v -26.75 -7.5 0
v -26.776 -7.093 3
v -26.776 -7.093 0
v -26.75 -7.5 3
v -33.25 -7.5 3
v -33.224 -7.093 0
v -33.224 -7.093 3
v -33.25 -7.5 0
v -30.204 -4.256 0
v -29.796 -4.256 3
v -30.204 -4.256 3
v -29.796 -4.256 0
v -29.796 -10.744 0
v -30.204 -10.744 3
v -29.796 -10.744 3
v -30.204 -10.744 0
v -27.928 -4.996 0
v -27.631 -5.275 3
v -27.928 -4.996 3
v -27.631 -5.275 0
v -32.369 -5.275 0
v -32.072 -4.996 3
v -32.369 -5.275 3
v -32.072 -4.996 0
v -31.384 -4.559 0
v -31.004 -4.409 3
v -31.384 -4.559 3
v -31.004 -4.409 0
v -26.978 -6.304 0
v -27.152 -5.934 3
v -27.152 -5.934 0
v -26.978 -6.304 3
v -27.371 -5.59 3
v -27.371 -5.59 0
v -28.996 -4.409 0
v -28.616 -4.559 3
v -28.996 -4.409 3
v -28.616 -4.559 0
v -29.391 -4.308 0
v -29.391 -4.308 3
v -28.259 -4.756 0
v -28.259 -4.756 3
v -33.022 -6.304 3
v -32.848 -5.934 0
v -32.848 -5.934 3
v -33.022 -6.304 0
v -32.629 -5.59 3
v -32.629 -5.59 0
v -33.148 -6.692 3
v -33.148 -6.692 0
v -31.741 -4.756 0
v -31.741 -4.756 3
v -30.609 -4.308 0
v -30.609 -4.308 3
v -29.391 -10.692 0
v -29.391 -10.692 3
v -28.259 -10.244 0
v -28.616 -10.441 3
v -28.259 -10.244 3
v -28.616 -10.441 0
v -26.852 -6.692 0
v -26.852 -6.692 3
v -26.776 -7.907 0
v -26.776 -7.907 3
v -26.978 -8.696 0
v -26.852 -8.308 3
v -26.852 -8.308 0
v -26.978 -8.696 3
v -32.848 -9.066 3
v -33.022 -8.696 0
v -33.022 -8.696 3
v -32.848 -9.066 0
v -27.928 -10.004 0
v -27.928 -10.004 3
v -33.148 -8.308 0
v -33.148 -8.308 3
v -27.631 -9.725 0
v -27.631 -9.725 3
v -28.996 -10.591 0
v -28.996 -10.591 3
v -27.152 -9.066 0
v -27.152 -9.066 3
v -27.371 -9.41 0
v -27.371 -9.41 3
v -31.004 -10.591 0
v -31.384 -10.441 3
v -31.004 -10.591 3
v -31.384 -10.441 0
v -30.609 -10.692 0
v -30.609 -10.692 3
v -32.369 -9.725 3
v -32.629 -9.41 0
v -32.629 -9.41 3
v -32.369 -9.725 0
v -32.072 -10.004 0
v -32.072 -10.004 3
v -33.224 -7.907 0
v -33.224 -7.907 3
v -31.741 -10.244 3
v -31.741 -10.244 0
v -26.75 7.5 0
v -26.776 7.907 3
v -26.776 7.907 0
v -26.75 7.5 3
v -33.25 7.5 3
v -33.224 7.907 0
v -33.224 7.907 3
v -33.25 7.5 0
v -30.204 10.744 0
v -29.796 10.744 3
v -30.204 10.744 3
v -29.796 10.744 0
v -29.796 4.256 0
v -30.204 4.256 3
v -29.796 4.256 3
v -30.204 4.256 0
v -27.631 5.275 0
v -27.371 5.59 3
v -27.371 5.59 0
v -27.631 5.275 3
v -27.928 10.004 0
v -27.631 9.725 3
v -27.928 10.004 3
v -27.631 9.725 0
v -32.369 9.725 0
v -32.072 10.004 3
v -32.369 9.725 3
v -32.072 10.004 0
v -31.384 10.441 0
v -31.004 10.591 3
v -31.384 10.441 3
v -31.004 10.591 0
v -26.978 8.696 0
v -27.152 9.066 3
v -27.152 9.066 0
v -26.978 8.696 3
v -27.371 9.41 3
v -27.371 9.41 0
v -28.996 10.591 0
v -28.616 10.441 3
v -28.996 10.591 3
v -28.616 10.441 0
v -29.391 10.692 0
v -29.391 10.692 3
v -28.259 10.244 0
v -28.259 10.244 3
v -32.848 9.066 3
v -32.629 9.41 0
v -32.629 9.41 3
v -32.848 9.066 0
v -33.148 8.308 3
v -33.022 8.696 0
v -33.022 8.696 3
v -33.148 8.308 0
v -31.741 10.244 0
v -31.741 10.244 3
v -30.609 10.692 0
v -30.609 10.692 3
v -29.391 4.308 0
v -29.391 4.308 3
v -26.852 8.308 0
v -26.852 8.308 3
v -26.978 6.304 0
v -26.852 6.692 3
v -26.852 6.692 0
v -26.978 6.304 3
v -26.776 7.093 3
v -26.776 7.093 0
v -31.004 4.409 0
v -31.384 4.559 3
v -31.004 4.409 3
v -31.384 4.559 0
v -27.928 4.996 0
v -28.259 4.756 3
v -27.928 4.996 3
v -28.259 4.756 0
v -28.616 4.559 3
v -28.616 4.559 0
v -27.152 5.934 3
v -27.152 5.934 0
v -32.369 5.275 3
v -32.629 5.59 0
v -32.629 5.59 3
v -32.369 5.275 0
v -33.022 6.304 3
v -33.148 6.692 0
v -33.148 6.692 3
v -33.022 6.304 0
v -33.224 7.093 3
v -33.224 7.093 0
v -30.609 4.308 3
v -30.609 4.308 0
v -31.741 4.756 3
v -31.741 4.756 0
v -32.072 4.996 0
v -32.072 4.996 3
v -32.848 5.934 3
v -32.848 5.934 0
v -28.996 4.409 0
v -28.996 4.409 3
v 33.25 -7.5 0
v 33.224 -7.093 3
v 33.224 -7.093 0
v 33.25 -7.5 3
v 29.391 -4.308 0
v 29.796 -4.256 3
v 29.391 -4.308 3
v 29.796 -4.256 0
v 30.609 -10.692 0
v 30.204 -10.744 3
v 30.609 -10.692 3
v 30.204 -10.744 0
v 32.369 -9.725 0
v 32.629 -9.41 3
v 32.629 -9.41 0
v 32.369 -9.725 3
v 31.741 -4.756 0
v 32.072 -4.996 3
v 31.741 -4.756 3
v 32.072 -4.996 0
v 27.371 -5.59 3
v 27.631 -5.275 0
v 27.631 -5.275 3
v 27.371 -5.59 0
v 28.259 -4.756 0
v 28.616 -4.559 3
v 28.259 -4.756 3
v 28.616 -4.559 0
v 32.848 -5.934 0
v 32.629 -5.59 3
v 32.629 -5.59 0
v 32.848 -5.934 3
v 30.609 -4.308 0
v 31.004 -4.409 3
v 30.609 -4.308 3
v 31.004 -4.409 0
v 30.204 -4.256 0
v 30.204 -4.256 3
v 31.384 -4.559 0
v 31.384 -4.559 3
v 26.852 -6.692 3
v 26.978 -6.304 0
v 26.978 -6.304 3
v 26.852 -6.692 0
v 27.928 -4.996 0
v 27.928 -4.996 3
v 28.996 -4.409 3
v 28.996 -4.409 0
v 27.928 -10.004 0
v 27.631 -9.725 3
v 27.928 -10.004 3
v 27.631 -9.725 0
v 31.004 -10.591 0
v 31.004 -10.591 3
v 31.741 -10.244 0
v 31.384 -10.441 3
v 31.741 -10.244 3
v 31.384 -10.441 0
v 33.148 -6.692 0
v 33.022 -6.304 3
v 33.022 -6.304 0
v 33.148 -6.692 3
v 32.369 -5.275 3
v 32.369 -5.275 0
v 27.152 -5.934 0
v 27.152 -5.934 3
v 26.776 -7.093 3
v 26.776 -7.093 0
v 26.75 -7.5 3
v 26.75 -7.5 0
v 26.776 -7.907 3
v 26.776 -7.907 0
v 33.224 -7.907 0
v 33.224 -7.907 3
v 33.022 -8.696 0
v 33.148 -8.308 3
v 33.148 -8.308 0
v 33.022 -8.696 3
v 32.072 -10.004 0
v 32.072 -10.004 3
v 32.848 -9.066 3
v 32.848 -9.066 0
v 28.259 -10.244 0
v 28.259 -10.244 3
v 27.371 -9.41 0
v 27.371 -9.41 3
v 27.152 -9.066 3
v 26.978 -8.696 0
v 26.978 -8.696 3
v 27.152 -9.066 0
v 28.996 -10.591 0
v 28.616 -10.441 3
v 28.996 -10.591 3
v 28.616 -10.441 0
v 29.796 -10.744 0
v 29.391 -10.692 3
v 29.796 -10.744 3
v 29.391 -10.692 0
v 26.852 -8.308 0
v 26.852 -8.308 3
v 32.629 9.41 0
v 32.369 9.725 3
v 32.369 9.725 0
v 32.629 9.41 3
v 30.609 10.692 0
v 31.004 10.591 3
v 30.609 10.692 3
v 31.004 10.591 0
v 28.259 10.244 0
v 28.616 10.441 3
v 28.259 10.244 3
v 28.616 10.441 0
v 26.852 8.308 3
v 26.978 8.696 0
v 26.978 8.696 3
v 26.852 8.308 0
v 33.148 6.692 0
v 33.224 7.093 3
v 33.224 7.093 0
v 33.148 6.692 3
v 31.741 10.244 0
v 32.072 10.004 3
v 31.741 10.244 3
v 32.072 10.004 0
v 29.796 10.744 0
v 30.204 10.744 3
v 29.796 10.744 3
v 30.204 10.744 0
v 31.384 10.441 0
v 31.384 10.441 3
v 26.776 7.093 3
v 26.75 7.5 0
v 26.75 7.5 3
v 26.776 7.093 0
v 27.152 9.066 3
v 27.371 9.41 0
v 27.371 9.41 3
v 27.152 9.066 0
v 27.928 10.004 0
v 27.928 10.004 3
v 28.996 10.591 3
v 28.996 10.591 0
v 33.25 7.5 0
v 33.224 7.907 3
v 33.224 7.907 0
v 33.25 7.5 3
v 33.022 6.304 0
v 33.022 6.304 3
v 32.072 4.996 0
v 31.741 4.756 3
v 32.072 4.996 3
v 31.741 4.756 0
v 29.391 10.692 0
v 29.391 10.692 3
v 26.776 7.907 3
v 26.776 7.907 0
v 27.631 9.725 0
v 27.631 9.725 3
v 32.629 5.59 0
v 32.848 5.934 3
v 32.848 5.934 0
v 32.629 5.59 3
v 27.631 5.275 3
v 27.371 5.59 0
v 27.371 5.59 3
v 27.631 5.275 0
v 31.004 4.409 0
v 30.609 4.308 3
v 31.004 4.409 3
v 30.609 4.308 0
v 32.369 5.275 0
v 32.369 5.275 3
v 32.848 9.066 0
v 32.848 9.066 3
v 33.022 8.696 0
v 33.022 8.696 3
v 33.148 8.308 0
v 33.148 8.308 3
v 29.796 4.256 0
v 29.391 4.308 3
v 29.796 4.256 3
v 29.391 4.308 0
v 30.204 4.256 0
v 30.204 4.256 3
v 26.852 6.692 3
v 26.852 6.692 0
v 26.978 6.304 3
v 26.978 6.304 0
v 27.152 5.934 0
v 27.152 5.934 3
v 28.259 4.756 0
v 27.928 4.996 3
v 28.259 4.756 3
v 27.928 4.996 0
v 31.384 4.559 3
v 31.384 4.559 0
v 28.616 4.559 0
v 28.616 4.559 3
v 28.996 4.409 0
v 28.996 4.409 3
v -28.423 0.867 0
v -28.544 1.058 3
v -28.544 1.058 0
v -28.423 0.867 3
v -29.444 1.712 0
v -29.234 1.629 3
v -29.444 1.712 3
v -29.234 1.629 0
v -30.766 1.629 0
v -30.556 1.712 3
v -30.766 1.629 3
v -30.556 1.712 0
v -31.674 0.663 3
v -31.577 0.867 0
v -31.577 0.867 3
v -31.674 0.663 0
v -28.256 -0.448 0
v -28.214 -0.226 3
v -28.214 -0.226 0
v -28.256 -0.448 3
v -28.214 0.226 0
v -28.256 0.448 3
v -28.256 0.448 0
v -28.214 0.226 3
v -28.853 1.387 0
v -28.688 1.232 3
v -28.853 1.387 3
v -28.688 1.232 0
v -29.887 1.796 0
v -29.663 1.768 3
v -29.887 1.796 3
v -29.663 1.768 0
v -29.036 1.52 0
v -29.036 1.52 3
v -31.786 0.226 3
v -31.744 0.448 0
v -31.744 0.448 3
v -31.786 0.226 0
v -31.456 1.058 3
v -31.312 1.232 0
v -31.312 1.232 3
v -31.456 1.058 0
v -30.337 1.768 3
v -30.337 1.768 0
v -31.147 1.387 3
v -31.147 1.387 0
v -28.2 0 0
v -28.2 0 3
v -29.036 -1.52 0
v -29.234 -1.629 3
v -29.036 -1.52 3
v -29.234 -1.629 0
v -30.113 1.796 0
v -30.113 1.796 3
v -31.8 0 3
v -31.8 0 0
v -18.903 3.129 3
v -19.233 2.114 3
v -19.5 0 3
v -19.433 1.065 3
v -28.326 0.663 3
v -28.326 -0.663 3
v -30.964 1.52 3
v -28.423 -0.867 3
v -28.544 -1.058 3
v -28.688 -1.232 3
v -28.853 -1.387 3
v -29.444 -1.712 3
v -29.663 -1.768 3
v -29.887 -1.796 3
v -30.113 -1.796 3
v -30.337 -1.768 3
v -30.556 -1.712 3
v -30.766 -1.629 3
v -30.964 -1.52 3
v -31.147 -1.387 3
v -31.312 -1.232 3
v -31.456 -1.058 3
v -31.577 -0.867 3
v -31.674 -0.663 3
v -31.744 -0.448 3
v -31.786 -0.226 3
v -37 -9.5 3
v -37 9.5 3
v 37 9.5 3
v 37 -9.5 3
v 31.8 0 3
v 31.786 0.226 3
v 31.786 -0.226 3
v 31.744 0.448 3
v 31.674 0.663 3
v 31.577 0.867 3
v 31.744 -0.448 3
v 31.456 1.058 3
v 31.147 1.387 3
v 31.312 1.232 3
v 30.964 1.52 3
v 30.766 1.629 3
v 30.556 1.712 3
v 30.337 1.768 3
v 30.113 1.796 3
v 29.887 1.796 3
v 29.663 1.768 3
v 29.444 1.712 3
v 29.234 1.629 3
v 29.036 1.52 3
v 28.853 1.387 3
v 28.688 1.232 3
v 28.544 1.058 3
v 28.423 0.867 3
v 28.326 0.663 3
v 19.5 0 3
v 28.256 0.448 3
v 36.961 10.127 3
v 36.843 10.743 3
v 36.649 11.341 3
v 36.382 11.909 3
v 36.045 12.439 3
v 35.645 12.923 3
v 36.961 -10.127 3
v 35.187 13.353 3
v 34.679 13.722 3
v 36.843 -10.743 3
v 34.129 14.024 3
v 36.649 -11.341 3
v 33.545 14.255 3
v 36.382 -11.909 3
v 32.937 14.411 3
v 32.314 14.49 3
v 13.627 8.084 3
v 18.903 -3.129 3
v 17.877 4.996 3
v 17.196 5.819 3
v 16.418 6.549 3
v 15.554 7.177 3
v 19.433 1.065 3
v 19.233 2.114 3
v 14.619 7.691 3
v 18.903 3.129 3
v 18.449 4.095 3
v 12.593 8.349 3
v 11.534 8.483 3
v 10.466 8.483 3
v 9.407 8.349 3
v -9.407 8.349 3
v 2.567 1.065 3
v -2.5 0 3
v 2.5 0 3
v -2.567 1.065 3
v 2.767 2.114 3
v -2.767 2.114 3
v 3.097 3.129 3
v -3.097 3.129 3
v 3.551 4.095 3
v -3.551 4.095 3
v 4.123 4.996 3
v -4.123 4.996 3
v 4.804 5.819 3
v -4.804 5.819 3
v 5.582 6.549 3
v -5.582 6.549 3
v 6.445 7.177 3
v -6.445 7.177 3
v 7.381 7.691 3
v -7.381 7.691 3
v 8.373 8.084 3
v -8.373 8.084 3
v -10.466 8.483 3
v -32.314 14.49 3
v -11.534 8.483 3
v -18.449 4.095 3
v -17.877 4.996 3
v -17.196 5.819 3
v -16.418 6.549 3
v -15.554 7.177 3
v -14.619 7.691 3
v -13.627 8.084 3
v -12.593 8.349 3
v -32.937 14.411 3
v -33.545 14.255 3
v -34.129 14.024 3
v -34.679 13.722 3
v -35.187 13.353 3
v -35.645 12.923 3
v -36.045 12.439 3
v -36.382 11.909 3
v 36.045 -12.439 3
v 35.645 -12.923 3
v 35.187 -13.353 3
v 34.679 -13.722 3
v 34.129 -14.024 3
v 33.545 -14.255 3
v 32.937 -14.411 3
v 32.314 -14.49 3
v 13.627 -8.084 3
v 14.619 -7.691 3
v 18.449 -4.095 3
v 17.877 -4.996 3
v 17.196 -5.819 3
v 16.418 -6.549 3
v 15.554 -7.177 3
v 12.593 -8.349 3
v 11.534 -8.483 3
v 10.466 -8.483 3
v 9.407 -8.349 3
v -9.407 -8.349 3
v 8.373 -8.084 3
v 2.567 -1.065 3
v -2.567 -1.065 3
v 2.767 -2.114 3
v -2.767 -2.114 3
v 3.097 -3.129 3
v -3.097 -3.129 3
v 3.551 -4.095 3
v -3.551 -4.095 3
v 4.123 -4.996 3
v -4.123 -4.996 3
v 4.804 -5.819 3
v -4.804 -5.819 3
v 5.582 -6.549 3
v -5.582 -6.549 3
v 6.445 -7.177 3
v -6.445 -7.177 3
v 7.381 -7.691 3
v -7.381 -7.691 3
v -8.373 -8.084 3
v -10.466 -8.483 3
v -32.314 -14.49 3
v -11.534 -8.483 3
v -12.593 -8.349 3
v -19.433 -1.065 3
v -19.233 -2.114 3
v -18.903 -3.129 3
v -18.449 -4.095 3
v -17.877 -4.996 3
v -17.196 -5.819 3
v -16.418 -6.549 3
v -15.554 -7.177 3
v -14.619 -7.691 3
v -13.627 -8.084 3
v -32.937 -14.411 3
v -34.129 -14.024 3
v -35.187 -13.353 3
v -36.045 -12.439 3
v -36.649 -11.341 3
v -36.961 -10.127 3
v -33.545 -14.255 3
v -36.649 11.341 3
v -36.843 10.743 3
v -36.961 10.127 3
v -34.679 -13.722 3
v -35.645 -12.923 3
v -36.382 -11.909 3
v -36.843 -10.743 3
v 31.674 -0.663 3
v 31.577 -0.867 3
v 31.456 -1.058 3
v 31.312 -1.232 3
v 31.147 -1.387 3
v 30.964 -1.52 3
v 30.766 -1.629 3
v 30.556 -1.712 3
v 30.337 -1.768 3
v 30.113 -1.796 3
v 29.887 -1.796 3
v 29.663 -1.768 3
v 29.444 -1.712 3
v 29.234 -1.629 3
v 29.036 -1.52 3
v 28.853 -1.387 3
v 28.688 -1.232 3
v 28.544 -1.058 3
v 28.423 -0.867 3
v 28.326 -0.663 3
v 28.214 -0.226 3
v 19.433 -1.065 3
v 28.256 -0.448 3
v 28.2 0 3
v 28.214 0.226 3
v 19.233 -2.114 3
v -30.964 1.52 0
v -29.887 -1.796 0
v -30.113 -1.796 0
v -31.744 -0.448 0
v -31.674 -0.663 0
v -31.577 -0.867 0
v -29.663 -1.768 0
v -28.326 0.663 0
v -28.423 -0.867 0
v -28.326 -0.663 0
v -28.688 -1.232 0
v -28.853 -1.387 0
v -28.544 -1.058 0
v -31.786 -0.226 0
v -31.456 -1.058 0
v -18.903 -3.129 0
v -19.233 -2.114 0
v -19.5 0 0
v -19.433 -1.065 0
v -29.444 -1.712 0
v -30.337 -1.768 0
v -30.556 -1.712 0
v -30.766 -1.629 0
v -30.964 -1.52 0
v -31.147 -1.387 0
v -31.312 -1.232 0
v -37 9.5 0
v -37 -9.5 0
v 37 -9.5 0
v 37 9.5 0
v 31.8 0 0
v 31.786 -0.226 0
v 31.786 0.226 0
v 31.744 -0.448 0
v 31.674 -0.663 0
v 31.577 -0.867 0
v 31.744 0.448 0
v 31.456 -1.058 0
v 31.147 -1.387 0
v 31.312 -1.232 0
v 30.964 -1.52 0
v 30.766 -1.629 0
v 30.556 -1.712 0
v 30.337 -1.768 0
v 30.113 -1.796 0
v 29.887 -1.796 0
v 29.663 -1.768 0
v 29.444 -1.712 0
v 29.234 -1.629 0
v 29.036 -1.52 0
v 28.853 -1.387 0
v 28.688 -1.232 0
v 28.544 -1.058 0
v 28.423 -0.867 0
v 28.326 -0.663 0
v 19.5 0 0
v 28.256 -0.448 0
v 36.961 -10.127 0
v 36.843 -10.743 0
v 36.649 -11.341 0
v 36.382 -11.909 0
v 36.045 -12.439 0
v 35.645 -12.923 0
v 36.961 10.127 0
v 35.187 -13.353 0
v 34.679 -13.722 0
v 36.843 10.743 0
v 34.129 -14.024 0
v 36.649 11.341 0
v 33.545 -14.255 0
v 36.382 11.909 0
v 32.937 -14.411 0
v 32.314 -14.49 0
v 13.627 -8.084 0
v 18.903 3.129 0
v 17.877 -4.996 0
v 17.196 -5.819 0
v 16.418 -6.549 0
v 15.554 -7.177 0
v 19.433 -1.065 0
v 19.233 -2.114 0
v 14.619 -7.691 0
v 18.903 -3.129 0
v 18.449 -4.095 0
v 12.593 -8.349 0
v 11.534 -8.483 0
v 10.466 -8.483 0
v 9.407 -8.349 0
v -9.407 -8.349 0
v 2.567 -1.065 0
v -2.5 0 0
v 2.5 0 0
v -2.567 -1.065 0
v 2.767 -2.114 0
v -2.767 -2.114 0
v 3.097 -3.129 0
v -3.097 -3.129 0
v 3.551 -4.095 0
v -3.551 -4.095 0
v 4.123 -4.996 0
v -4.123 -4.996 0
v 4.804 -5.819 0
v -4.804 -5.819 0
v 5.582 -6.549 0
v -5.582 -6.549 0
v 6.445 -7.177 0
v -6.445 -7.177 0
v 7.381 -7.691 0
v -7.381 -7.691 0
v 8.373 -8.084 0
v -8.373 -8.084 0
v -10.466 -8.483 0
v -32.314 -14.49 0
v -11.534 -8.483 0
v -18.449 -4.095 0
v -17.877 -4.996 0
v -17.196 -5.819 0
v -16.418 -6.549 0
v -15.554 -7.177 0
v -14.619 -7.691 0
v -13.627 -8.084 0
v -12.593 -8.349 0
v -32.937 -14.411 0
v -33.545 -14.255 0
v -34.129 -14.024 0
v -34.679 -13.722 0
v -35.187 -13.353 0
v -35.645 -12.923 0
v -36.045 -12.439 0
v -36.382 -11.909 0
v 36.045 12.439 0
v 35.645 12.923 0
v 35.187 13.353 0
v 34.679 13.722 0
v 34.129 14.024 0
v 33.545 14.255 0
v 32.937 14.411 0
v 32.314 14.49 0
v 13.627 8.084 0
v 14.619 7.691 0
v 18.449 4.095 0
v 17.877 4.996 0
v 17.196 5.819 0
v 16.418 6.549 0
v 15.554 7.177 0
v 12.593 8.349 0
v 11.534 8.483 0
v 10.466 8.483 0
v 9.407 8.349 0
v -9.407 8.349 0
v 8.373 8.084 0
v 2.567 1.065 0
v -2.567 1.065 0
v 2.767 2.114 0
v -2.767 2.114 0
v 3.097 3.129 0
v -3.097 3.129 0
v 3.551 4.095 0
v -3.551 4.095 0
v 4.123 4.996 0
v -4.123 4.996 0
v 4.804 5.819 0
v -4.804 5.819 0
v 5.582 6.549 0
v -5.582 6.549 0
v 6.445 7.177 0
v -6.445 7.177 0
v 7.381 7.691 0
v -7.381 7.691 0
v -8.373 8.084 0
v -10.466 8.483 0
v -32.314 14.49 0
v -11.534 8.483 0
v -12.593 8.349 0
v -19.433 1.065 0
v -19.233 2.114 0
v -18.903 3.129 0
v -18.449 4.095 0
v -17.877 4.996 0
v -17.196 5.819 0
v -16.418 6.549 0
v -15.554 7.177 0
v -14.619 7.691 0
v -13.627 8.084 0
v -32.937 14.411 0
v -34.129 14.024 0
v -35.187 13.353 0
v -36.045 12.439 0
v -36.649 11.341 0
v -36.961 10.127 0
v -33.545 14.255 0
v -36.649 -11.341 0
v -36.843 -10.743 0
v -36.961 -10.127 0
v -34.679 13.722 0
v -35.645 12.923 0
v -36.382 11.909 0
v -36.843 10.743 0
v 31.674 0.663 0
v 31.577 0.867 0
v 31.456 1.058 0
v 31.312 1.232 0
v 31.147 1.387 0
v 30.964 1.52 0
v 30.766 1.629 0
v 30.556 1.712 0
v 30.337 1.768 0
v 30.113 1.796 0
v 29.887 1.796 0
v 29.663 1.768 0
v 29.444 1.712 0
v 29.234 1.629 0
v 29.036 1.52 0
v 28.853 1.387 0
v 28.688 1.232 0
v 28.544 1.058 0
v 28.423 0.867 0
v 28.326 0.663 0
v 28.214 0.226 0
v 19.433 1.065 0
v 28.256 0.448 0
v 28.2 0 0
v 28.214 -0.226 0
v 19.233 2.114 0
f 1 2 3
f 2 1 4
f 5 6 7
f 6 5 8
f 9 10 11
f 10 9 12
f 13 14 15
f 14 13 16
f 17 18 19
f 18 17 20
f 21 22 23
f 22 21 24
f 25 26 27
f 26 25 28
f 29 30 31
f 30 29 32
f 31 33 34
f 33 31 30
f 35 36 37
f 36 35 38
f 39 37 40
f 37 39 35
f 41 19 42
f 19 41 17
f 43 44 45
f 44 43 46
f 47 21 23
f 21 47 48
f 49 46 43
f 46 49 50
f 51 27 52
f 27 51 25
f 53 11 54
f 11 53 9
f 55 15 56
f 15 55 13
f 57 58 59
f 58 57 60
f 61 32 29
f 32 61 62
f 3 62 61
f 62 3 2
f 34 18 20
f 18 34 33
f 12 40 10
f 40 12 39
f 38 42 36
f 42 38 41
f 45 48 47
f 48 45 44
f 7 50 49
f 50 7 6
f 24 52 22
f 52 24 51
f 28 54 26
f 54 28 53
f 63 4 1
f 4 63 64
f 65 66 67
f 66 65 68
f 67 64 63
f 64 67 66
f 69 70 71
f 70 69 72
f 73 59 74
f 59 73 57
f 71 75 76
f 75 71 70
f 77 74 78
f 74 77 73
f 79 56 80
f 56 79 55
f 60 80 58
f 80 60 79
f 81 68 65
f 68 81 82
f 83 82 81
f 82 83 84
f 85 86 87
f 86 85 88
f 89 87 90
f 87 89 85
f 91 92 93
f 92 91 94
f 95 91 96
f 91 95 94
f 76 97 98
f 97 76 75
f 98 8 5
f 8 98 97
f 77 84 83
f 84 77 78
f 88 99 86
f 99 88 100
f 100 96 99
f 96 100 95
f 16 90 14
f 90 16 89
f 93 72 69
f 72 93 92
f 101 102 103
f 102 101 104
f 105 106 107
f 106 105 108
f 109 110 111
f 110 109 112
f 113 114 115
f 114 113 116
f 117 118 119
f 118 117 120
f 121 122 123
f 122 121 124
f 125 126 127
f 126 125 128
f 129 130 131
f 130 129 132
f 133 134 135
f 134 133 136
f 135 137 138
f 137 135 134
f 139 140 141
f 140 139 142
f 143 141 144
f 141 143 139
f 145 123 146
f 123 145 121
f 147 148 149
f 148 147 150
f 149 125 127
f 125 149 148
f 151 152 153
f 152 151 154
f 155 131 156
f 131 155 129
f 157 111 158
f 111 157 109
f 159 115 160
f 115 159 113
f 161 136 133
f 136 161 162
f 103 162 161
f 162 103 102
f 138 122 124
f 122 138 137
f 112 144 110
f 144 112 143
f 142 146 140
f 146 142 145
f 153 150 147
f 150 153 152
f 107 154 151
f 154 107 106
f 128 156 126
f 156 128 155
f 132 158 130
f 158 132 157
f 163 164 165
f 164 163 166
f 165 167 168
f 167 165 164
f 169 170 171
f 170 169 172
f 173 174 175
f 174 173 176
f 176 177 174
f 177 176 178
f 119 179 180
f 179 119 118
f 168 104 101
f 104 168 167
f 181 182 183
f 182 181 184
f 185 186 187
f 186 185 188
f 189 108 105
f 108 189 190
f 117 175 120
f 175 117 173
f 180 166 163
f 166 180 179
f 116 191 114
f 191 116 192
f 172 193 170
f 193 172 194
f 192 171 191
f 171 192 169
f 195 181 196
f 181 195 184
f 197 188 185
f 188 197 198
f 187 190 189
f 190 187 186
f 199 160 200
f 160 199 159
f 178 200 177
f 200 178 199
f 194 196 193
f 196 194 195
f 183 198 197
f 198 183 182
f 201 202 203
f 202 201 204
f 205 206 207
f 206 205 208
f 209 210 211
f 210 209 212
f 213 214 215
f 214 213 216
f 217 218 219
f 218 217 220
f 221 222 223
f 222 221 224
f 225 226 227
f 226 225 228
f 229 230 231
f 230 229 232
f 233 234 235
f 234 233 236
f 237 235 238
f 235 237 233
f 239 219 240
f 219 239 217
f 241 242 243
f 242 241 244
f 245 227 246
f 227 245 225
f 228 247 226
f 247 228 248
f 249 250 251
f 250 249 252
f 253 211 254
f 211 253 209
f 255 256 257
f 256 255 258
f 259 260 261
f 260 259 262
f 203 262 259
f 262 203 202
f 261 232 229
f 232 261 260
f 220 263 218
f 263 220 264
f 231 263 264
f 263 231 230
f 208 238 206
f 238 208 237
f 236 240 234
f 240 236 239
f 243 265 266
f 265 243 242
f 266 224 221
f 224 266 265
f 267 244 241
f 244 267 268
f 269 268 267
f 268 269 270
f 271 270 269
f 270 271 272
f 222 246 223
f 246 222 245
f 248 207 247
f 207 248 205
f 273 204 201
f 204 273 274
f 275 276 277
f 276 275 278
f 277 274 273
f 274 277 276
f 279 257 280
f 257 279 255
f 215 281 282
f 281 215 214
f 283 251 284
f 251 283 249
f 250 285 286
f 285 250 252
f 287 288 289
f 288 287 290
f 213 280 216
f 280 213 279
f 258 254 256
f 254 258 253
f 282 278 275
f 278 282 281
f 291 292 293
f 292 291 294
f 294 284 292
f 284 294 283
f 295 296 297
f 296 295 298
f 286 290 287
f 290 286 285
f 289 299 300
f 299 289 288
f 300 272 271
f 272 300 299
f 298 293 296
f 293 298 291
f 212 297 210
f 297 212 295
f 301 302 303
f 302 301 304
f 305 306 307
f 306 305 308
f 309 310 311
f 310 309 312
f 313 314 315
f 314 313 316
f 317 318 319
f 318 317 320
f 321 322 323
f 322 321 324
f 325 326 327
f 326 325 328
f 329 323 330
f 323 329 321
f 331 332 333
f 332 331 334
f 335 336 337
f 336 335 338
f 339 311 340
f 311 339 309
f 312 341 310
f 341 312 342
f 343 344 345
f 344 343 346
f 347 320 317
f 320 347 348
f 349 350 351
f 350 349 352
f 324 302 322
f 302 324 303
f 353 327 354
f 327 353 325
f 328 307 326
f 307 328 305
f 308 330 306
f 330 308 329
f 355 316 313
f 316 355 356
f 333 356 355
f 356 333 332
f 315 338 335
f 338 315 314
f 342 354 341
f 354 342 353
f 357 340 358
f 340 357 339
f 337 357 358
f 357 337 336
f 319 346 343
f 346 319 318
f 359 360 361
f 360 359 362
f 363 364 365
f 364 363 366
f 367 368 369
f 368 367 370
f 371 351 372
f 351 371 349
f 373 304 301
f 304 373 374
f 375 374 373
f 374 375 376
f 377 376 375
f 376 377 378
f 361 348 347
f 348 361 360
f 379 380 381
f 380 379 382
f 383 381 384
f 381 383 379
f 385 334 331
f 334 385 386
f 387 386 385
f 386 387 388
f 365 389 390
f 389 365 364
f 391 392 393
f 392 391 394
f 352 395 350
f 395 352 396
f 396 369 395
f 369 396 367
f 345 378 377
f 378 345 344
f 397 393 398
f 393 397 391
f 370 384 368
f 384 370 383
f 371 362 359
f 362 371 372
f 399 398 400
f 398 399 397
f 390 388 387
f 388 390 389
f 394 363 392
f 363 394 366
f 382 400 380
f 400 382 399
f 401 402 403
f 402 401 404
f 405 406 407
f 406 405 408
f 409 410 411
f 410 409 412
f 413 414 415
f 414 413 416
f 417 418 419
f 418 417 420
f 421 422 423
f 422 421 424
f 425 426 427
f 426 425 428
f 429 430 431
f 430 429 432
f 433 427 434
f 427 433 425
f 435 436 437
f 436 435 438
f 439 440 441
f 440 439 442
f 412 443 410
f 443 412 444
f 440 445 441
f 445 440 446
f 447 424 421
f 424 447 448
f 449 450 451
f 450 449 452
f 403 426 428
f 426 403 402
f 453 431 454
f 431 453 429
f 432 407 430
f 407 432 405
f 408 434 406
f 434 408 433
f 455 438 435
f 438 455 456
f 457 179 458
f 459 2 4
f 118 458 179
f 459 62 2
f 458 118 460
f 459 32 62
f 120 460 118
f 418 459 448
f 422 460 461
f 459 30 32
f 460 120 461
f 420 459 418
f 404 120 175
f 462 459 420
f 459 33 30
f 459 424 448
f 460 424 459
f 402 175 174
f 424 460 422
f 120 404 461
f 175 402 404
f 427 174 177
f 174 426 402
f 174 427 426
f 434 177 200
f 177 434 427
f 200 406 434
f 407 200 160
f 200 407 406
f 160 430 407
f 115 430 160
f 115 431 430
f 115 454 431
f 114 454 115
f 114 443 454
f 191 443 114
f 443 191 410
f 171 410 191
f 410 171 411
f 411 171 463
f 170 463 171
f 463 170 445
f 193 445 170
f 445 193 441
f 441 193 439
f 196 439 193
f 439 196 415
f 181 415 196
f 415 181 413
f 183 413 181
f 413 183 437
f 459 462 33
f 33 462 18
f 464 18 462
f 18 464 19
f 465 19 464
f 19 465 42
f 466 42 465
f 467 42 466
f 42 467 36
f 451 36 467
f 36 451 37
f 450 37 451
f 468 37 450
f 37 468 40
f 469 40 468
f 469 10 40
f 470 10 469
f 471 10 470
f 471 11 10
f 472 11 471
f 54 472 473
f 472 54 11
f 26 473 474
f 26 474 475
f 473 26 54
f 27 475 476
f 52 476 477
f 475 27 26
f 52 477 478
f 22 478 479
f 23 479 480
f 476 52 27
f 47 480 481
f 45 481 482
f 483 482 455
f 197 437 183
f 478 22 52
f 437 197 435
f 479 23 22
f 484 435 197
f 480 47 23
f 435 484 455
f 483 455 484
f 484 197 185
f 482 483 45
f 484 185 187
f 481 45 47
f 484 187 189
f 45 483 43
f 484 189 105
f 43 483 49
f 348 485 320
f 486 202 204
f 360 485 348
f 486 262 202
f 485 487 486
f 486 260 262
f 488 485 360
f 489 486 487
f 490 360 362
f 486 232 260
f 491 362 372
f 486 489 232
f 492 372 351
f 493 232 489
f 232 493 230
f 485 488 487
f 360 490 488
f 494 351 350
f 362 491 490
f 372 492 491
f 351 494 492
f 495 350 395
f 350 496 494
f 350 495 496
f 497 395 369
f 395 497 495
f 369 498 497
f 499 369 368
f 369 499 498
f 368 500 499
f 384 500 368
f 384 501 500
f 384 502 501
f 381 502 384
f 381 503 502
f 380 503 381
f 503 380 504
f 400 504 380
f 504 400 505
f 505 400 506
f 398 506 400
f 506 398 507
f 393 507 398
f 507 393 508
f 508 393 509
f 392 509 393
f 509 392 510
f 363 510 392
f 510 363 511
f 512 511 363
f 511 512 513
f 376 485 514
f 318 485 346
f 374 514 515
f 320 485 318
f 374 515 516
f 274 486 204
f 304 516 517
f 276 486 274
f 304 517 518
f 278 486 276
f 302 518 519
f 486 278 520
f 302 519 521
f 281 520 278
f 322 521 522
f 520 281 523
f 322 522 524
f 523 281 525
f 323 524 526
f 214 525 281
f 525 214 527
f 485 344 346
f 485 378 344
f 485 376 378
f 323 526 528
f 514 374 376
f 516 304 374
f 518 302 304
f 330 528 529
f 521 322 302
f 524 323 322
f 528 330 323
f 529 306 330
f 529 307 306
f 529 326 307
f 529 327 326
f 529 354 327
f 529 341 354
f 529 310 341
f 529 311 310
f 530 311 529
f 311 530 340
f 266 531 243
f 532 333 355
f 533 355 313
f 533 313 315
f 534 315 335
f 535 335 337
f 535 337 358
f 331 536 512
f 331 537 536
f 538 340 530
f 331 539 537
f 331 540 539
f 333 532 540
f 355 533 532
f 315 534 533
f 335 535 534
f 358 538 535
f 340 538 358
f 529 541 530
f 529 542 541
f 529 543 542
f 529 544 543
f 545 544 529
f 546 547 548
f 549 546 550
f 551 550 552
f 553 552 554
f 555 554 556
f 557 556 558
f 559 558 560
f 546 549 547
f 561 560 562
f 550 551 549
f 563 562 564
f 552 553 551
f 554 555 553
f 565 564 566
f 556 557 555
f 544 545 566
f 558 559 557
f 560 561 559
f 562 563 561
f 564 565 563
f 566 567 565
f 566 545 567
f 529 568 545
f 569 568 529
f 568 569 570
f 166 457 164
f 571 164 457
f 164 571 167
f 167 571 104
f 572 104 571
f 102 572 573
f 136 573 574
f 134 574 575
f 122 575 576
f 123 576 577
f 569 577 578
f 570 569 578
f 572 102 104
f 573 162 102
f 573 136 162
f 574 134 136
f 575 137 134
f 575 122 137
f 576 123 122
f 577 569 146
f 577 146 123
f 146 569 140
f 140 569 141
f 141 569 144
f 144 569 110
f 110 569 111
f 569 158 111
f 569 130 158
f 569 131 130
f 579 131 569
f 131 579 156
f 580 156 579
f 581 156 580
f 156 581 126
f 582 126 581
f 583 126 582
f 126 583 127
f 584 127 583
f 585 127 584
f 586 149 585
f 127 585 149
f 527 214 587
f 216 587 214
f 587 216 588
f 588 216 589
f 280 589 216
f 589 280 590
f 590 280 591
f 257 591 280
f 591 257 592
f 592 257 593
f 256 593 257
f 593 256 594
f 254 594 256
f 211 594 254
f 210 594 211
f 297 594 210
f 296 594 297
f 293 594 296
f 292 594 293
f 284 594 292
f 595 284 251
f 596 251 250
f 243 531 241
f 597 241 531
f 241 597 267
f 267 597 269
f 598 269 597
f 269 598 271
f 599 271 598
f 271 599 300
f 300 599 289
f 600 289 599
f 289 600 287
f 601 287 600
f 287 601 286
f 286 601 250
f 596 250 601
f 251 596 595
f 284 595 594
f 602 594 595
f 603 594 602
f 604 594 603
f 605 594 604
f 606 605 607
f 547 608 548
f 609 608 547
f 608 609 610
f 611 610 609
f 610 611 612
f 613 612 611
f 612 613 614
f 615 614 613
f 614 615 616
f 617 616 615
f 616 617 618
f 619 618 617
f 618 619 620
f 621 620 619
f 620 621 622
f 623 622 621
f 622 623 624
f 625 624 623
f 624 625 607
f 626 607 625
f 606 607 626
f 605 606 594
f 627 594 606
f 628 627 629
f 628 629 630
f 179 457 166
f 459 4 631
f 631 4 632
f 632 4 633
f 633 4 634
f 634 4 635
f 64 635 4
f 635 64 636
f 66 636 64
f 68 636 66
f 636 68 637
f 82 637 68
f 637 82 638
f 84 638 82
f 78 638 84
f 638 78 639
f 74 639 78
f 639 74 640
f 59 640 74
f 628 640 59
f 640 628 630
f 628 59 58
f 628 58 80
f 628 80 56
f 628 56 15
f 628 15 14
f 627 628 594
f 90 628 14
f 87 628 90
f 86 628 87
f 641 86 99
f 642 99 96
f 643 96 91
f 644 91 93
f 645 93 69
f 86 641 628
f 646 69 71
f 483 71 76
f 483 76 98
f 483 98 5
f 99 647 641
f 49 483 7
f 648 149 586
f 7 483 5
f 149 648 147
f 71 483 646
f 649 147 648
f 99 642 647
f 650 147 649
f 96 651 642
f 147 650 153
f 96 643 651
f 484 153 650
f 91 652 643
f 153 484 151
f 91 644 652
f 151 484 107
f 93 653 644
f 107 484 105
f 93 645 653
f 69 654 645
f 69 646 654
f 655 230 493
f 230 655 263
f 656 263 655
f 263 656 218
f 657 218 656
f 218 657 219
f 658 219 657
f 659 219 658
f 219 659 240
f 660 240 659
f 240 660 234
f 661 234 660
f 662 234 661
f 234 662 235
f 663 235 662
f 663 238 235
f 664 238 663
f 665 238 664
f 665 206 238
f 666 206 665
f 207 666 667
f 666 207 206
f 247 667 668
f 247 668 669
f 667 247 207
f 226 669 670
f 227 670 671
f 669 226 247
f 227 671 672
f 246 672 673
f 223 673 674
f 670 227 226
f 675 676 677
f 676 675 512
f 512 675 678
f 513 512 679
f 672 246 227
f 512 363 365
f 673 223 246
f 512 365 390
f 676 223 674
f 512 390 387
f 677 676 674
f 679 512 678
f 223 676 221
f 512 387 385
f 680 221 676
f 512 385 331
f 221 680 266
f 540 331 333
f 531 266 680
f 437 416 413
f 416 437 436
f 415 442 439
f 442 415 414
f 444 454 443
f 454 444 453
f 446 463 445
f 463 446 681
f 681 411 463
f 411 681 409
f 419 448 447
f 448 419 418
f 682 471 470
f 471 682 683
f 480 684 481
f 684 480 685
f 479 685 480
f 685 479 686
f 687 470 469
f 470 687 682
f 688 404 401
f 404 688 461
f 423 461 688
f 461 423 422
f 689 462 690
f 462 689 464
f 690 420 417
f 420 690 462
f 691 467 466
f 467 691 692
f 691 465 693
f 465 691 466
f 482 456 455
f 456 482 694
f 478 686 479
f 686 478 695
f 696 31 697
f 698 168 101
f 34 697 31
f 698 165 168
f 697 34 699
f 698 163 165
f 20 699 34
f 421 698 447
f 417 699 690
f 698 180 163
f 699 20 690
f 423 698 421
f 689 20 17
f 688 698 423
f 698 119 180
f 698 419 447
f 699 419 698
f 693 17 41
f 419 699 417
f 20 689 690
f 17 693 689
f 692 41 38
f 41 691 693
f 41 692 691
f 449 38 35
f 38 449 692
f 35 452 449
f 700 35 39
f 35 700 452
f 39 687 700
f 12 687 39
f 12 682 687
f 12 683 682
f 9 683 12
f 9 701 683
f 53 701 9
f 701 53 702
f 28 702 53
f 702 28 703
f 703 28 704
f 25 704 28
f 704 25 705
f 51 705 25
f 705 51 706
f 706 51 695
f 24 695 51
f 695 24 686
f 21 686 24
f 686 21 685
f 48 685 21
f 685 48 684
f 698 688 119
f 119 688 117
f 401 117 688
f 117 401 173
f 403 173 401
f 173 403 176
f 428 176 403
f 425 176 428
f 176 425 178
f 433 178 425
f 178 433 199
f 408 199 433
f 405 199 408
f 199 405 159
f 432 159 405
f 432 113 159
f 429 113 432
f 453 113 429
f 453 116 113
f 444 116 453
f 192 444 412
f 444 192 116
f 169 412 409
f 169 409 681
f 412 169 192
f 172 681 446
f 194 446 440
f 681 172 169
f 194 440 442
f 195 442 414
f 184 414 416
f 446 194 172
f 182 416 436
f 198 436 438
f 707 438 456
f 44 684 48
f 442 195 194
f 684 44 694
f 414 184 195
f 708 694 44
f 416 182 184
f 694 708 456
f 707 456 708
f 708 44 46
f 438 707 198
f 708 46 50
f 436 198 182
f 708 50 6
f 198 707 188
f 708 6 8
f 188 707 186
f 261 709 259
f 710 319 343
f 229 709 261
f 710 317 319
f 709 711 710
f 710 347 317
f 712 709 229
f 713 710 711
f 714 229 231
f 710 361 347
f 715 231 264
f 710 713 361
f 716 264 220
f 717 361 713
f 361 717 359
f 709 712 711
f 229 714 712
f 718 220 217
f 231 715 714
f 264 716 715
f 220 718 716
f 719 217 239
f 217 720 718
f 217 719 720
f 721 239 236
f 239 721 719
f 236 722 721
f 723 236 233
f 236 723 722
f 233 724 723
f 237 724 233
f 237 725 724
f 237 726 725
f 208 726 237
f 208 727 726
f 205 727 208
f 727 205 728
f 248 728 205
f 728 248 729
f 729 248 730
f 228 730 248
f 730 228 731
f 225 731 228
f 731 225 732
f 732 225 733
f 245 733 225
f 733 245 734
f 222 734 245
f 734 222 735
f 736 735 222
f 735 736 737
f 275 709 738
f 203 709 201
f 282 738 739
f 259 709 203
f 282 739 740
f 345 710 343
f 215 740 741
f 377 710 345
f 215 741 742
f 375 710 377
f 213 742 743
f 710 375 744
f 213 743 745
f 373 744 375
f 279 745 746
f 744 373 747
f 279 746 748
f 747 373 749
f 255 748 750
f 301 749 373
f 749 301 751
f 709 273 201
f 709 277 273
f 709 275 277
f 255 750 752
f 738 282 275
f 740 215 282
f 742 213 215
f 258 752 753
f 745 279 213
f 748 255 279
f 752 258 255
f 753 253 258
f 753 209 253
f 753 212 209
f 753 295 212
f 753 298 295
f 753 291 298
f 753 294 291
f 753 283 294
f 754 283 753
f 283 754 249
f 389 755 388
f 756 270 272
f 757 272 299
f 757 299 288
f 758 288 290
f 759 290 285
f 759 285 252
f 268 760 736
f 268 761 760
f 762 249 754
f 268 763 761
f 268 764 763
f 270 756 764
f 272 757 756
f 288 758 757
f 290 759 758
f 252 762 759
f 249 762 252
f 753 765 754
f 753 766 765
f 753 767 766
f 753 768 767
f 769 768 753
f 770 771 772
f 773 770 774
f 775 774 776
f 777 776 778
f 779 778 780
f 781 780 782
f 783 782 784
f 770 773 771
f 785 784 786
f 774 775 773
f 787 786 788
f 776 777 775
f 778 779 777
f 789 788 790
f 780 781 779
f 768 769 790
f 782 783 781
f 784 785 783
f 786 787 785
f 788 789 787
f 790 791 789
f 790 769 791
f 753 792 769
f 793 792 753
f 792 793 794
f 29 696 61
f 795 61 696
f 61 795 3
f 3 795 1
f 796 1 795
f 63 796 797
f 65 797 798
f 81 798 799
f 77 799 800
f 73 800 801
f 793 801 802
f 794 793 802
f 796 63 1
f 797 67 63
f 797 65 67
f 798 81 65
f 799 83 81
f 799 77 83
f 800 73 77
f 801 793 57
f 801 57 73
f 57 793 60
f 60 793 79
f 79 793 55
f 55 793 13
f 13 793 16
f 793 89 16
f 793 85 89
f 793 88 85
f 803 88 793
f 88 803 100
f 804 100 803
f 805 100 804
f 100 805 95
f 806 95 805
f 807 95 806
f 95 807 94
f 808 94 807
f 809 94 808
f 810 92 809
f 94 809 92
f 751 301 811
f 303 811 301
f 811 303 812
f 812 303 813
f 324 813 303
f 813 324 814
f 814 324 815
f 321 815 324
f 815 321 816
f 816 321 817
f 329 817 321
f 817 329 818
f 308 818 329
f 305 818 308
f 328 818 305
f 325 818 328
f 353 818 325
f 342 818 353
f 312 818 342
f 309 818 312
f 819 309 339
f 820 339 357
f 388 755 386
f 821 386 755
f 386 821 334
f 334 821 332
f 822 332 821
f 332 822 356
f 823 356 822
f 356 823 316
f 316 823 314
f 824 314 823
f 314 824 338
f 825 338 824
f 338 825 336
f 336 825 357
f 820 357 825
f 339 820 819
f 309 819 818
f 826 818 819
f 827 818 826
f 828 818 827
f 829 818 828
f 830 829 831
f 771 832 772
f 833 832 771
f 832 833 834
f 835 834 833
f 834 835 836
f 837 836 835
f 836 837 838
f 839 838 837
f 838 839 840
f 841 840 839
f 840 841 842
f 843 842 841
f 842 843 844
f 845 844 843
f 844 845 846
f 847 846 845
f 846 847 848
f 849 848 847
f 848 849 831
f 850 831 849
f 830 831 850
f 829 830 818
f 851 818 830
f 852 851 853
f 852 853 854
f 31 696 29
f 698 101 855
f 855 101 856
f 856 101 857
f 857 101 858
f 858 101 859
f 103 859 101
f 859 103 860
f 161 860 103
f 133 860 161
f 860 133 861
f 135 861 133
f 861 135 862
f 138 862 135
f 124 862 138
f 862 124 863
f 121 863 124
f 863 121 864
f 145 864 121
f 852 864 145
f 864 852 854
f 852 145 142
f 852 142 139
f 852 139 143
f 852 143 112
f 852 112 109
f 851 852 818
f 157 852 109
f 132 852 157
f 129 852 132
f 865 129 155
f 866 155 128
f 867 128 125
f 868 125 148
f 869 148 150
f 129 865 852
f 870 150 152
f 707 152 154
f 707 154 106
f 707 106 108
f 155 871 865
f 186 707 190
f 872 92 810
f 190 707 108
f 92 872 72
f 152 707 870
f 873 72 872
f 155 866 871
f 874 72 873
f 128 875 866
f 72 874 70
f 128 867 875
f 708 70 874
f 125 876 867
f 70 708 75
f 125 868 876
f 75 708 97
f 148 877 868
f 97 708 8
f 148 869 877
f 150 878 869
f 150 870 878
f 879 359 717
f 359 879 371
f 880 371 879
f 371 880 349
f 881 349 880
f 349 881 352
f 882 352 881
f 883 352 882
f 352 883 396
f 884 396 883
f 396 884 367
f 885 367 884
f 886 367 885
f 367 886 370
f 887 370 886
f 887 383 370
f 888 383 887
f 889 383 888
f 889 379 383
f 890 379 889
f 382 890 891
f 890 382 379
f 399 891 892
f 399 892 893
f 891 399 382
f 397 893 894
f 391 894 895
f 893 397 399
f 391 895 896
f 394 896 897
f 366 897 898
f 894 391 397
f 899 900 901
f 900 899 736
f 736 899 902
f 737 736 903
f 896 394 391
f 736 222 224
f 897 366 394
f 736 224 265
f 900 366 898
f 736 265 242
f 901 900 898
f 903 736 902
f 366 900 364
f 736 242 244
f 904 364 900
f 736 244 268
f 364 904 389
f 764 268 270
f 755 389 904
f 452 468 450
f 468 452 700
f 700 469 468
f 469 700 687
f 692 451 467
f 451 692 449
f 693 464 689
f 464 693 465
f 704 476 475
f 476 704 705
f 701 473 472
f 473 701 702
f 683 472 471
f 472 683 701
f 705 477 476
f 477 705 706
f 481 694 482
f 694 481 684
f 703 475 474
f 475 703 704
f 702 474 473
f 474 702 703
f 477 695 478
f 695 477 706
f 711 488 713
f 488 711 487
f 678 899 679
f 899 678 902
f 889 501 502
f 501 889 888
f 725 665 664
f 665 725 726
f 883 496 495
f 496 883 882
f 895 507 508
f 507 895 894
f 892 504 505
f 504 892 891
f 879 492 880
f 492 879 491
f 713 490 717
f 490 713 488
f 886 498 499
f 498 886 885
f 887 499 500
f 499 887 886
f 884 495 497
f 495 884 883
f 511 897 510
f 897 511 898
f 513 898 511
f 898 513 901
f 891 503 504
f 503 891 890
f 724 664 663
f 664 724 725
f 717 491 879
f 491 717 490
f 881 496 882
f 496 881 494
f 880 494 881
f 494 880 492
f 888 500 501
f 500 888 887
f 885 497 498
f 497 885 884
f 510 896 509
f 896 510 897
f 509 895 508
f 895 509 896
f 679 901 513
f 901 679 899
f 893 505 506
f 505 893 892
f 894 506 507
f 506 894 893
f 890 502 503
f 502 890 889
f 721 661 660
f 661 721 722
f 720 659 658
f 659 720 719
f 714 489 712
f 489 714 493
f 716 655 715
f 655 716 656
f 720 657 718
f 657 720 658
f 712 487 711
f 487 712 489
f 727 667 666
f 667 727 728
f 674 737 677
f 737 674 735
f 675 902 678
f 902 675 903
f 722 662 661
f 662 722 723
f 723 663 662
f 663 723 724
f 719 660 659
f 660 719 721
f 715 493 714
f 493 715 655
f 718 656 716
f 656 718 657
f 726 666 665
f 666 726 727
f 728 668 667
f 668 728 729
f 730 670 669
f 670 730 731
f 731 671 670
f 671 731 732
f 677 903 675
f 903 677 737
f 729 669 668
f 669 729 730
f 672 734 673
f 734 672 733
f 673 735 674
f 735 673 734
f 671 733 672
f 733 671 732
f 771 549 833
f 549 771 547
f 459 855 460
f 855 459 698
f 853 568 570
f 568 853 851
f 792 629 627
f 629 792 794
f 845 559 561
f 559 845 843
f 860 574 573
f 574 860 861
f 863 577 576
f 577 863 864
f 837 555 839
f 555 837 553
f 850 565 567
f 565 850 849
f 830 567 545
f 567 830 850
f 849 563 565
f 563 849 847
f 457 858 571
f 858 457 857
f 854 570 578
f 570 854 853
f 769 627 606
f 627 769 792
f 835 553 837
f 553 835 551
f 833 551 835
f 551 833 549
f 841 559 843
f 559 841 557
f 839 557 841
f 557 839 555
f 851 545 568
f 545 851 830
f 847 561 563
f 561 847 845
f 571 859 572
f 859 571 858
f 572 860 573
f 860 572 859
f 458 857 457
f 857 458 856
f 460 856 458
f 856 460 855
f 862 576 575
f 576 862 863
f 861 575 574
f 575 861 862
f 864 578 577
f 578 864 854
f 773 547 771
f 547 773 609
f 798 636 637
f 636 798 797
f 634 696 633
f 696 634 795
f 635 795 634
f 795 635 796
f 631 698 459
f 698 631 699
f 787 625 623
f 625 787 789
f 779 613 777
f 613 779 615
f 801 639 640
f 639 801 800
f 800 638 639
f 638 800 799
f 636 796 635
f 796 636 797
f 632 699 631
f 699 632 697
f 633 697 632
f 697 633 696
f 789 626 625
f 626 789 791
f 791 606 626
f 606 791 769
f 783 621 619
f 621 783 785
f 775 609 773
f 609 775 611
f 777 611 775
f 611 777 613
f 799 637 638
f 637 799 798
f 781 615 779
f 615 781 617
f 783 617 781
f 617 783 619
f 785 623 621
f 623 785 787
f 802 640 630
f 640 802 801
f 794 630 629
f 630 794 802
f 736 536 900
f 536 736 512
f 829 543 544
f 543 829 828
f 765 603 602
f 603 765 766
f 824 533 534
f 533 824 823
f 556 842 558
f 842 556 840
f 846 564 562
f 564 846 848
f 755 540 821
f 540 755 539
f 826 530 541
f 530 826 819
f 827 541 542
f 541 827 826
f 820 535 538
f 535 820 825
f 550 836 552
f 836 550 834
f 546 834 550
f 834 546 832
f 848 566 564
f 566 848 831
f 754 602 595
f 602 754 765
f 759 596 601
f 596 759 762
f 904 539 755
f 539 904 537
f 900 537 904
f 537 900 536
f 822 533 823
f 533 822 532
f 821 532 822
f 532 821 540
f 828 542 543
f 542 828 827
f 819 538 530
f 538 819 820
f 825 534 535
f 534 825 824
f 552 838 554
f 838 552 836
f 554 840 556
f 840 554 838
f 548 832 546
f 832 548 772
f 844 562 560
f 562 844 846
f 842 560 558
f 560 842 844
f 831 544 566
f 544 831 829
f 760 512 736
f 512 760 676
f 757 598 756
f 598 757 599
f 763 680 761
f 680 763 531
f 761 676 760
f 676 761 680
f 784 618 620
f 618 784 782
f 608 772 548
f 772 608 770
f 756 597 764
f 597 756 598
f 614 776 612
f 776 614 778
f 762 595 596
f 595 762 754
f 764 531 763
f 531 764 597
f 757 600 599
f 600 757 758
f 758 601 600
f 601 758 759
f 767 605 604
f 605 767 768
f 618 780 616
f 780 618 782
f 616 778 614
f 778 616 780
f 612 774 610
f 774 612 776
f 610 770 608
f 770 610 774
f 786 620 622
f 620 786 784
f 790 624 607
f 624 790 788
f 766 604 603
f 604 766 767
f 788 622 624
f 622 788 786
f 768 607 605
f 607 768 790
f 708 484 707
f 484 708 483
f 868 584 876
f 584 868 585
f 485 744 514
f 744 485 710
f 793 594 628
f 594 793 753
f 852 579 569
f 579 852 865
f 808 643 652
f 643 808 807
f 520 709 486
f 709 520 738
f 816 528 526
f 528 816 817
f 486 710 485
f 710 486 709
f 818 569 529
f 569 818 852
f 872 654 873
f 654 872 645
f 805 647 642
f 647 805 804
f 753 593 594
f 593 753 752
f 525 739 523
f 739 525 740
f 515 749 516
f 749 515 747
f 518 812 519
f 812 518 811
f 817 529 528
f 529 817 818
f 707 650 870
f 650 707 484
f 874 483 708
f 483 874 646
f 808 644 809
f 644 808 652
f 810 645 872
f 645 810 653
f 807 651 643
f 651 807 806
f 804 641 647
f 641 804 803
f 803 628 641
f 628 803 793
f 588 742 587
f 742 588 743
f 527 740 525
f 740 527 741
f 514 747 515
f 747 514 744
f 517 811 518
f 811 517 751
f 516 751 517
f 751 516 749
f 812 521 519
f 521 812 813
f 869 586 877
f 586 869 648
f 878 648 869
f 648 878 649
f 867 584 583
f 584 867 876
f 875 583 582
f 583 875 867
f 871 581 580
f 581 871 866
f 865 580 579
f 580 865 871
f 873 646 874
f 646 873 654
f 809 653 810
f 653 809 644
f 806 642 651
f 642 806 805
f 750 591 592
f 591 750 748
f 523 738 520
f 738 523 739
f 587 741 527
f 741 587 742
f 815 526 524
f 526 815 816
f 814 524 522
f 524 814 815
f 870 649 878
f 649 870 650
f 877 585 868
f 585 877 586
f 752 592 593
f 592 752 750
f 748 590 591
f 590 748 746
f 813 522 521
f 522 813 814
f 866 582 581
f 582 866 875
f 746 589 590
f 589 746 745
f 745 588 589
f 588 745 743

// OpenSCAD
$fn = 50;


difference() {
	union() {
		hull() {
			translate(v = [-32.0000000000, 9.5000000000, 0]) {
				cylinder(h = 3, r = 5);
			}
			translate(v = [32.0000000000, 9.5000000000, 0]) {
				cylinder(h = 3, r = 5);
			}
			translate(v = [-32.0000000000, -9.5000000000, 0]) {
				cylinder(h = 3, r = 5);
			}
			translate(v = [32.0000000000, -9.5000000000, 0]) {
				cylinder(h = 3, r = 5);
			}
		}
	}
	union() {
		#translate(v = [-30.0000000000, -7.5000000000, 0]) {
			cylinder(h = 3, r = 3.2500000000);
		}
		#translate(v = [-30.0000000000, 7.5000000000, 0]) {
			cylinder(h = 3, r = 3.2500000000);
		}
		#translate(v = [30.0000000000, -7.5000000000, 0]) {
			cylinder(h = 3, r = 3.2500000000);
		}
		#translate(v = [30.0000000000, 7.5000000000, 0]) {
			cylinder(h = 3, r = 3.2500000000);
		}
		#translate(v = [-30.0000000000, -7.5000000000, -100.0000000000]) {
			cylinder(h = 200, r = 3.2500000000);
		}
		#translate(v = [-30.0000000000, 7.5000000000, -100.0000000000]) {
			cylinder(h = 200, r = 3.2500000000);
		}
		#translate(v = [30.0000000000, -7.5000000000, -100.0000000000]) {
			cylinder(h = 200, r = 3.2500000000);
		}
		#translate(v = [30.0000000000, 7.5000000000, -100.0000000000]) {
			cylinder(h = 200, r = 3.2500000000);
		}
		#translate(v = [-30.0000000000, -7.5000000000, 0]) {
			cylinder(h = 3, r = 1.8000000000);
		}
		#translate(v = [-30.0000000000, 0.0000000000, 0]) {
			cylinder(h = 3, r = 1.8000000000);
		}
		#translate(v = [-30.0000000000, 7.5000000000, 0]) {
			cylinder(h = 3, r = 1.8000000000);
		}
		#translate(v = [30.0000000000, -7.5000000000, 0]) {
			cylinder(h = 3, r = 1.8000000000);
		}
		#translate(v = [30.0000000000, 0.0000000000, 0]) {
			cylinder(h = 3, r = 1.8000000000);
		}
		#translate(v = [30.0000000000, 7.5000000000, 0]) {
			cylinder(h = 3, r = 1.8000000000);
		}
		#translate(v = [-30.0000000000, -7.5000000000, 0]) {
			cylinder(h = 3, r = 1.8000000000);
		}
		#translate(v = [-30.0000000000, 0.0000000000, 0]) {
			cylinder(h = 3, r = 1.8000000000);
		}
		#translate(v = [-30.0000000000, 7.5000000000, 0]) {
			cylinder(h = 3, r = 1.8000000000);
		}
		#translate(v = [30.0000000000, -7.5000000000, 0]) {
			cylinder(h = 3, r = 1.8000000000);
		}
		#translate(v = [30.0000000000, 0.0000000000, 0]) {
			cylinder(h = 3, r = 1.8000000000);
		}
		#translate(v = [30.0000000000, 7.5000000000, 0]) {
			cylinder(h = 3, r = 1.8000000000);
		}
		#translate(v = [-30.0000000000, -7.5000000000, 0]) {
			cylinder(h = 3, r = 1.8000000000);
		}
		#translate(v = [-30.0000000000, 0.0000000000, 0]) {
			cylinder(h = 3, r = 1.8000000000);
		}
		#translate(v = [-30.0000000000, 7.5000000000, 0]) {
			cylinder(h = 3, r = 1.8000000000);
		}
		#translate(v = [30.0000000000, -7.5000000000, 0]) {
			cylinder(h = 3, r = 1.8000000000);
		}
		#translate(v = [30.0000000000, 0.0000000000, 0]) {
			cylinder(h = 3, r = 1.8000000000);
		}
		#translate(v = [30.0000000000, 7.5000000000, 0]) {
			cylinder(h = 3, r = 1.8000000000);
		}
		#translate(v = [-11.0000000000, 0, 0]) {
			cylinder(h = 3, r = 8.5000000000);
		}
		#translate(v = [11.0000000000, 0, 0]) {
			cylinder(h = 3, r = 8.5000000000);
		}
	}
}
